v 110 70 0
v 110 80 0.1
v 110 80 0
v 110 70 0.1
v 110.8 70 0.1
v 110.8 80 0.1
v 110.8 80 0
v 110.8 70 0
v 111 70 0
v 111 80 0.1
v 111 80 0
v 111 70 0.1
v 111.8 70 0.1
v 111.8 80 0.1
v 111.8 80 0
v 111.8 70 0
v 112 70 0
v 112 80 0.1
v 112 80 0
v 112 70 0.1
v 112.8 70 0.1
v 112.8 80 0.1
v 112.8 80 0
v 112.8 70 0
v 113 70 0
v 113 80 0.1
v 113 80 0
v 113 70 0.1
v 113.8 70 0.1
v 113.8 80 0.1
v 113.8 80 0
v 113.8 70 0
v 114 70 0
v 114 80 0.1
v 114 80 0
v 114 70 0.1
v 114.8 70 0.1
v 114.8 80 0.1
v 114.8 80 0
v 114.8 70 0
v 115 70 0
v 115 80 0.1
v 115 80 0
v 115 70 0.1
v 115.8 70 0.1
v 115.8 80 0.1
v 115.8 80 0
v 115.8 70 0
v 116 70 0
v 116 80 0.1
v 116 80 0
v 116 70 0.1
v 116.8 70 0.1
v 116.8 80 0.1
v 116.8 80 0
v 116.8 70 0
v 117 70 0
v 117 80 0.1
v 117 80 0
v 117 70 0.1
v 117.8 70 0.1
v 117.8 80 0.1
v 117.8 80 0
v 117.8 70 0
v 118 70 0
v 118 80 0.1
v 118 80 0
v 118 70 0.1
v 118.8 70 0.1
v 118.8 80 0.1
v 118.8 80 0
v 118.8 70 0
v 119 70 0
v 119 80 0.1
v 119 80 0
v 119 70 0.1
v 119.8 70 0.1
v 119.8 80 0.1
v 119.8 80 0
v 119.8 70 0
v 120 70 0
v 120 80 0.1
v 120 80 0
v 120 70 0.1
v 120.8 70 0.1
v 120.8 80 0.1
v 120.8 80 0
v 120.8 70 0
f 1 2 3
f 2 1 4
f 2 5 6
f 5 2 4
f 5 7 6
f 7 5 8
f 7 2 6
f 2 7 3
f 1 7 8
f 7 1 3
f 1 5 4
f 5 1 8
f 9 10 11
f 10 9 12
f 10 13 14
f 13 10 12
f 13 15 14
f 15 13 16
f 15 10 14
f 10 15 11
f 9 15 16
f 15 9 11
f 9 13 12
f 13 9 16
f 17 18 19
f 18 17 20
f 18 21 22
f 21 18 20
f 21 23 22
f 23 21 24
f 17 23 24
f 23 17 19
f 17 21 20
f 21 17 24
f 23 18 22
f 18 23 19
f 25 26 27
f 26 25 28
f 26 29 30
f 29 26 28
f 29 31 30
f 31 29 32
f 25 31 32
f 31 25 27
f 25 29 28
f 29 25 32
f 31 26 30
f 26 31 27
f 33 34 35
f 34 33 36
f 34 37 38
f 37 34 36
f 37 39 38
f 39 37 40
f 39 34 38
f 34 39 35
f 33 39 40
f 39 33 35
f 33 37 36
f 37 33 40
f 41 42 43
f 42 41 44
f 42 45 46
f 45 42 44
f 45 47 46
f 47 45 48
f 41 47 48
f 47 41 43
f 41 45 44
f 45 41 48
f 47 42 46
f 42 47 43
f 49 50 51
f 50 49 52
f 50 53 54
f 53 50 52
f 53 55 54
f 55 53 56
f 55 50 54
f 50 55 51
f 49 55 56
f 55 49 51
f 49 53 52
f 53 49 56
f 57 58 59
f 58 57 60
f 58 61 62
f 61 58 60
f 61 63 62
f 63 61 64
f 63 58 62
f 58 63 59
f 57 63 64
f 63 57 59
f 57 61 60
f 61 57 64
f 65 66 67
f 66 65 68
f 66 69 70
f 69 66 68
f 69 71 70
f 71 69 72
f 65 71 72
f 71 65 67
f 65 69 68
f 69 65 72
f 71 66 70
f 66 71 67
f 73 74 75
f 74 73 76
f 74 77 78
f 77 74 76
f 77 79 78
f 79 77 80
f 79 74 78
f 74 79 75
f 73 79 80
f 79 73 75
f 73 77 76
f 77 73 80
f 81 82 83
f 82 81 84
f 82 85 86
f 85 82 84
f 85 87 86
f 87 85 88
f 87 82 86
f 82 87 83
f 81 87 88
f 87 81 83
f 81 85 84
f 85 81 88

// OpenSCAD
translate([10+100,10+60,0])
        for (i = [0 : 10]){
            translate([i,0,0])
                cube(size = [0.8,10,0.1]);
    }
